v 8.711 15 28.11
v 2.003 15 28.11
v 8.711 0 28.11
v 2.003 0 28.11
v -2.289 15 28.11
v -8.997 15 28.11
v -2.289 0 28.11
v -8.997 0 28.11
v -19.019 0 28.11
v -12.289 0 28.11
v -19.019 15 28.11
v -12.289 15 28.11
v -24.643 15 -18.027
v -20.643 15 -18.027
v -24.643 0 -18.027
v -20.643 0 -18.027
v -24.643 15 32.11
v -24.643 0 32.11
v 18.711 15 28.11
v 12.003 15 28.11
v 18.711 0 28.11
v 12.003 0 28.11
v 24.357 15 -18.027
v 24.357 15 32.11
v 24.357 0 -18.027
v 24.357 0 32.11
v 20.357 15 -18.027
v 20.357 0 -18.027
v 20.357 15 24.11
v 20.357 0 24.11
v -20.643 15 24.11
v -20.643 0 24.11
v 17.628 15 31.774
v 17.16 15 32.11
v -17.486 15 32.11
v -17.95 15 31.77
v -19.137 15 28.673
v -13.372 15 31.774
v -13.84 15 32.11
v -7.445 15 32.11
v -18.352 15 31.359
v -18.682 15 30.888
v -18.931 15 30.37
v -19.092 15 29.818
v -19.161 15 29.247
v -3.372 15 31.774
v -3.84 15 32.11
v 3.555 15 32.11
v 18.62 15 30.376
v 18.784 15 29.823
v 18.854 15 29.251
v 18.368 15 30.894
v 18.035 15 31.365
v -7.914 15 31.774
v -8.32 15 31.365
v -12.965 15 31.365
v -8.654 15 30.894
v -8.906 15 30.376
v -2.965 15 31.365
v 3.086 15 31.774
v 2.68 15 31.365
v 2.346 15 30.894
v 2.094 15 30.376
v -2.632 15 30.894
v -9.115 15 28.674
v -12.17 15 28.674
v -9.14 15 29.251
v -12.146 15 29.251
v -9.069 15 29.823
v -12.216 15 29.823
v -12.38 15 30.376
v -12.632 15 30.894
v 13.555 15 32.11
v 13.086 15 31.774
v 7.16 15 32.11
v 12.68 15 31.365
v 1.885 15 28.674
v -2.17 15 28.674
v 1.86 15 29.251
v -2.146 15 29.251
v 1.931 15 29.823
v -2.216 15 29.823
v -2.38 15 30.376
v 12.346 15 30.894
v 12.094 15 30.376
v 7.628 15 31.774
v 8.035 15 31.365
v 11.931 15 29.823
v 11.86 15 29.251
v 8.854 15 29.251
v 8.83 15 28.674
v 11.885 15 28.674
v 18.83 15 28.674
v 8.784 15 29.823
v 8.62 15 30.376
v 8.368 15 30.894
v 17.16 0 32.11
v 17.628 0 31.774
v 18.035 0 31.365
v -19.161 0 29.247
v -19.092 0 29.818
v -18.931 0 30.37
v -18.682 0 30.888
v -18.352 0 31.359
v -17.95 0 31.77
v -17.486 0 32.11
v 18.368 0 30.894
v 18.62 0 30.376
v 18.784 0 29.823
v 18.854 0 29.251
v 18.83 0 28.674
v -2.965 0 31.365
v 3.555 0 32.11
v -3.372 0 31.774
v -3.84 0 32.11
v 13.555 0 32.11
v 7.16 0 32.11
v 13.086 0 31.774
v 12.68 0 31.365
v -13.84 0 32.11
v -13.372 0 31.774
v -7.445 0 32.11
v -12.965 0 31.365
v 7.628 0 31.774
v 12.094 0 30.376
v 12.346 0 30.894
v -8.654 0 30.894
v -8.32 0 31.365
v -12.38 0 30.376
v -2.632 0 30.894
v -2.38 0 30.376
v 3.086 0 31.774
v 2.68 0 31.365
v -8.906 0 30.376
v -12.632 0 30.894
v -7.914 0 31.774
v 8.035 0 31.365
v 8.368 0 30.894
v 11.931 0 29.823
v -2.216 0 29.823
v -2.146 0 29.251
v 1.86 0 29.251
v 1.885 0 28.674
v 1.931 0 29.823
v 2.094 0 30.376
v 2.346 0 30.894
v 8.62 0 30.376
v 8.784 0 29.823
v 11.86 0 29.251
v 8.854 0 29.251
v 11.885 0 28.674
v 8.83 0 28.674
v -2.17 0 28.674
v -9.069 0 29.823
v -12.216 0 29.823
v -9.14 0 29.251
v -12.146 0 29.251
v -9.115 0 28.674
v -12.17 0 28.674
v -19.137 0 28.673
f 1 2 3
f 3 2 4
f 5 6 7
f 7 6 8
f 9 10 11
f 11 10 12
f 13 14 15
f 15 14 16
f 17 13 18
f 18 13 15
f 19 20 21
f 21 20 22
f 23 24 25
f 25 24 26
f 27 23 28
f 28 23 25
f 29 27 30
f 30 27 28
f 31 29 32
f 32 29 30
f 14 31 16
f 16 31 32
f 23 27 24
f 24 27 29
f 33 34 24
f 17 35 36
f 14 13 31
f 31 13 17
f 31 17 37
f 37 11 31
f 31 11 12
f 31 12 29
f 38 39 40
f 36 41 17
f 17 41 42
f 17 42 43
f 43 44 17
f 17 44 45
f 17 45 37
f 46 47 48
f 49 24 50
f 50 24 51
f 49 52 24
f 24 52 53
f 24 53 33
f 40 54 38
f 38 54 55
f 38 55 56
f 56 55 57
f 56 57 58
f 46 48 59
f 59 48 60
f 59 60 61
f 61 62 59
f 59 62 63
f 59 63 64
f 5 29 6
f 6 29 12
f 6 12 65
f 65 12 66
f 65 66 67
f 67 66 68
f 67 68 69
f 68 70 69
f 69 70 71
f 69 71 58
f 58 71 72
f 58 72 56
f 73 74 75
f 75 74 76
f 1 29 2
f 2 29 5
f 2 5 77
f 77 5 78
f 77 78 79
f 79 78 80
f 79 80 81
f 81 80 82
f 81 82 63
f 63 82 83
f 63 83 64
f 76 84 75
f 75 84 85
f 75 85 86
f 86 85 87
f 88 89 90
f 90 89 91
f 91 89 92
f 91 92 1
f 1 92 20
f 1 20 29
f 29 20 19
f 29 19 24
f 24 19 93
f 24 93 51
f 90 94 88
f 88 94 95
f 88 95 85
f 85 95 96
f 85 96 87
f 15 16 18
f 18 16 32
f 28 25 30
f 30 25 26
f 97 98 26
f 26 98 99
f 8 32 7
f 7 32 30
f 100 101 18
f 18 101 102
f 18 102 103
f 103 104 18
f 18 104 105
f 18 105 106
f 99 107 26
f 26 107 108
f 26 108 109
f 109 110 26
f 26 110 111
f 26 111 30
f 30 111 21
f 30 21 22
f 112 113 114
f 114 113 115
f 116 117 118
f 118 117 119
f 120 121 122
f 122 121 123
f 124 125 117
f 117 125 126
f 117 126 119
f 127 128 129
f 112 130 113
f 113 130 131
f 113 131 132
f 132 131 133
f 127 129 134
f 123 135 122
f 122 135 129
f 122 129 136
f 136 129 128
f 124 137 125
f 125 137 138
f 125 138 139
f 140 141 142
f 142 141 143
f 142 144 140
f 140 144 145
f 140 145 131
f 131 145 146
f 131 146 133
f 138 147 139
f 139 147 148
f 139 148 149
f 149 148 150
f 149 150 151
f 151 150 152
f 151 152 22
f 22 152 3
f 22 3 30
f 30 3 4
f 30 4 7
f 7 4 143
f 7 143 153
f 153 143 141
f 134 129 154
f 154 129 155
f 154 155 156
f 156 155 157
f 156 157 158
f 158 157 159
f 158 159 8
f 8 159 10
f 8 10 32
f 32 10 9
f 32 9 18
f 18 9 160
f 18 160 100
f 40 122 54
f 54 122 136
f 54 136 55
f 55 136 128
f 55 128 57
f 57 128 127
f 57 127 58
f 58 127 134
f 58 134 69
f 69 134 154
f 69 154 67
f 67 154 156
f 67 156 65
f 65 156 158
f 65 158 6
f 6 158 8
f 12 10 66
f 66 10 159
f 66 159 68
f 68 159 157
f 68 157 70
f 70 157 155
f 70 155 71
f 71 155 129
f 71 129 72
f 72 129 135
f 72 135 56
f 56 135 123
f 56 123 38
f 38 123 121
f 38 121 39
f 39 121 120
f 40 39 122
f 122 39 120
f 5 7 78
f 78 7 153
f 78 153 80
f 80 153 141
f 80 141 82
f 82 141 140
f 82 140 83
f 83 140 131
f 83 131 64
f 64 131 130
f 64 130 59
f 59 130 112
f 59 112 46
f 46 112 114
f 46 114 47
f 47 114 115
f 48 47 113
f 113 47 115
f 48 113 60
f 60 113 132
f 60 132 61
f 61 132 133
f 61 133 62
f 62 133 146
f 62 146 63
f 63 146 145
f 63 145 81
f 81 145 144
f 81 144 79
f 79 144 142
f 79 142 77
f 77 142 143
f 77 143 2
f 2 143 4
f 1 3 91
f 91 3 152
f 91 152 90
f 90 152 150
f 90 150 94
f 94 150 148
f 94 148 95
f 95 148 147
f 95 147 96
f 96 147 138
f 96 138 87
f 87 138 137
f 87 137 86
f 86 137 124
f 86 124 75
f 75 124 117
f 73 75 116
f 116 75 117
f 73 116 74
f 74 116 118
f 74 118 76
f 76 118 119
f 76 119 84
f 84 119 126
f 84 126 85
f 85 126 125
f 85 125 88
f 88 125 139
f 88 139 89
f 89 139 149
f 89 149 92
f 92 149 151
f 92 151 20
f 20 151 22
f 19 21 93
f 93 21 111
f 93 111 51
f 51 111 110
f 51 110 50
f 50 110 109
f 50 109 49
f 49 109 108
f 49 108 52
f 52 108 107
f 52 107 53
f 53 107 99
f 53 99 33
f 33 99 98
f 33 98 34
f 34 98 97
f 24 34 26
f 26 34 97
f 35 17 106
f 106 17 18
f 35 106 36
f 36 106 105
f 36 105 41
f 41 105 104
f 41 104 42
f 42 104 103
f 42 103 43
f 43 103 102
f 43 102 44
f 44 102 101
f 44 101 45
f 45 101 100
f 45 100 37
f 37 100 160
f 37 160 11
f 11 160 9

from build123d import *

# Parameters (mm, degrees)
EXTRUDE_1_DEPTH = 15
EXTRUDE_4_DEPTH = 15


with BuildPart() as part:
    # 草图1 → 凸台-拉伸1 (new body)
    with BuildSketch(Plane(origin=(0, 0, 0), x_dir=(1, 0, 0), z_dir=(0, 1, 0))):
        Polygon((-20.642691415, 18.026682135), (-20.642691415, -24.110208817), (20.357308585, -24.110208817), (20.357308585, 18.026682135), (24.357308585, 18.026682135), (24.357308585, -28.110208817), (-24.642691415, -28.110208817), (-24.642691415, 18.026682135), align=None)
    extrude(amount=EXTRUDE_1_DEPTH)

    # 草图3 → 凸台-拉伸4 (add)
    with BuildSketch(Plane.XZ):
        with BuildLine():
            Line((-24.642691415, 28.110208817), (-24.642691415, 32.110208817))
            Line((-24.642691415, 32.110208817), (-17.486324867, 32.110208817))
            ThreePointArc((-17.486324867, 32.110208817), (-18.930816259, 30.370057744), (-19.018929604, 28.110208817))
            Line((-19.018929604, 28.110208817), (-24.642691415, 28.110208817))
        make_face()
        with BuildLine():
            Line((-13.839915778, 32.110208817), (-7.445467053, 32.110208817))
            ThreePointArc((-7.445467053, 32.110208817), (-8.905871866, 30.375773254), (-8.996793382, 28.110208817))
            Line((-8.996793382, 28.110208817), (-12.288589449, 28.110208817))
            ThreePointArc((-12.288589449, 28.110208817), (-12.379510964, 30.375773254), (-13.839915778, 32.110208817))
        make_face()
        with BuildLine():
            Line((-3.839915778, 32.110208817), (3.554532947, 32.110208817))
            ThreePointArc((3.554532947, 32.110208817), (2.094128134, 30.375773254), (2.003206618, 28.110208817))
            Line((2.003206618, 28.110208817), (-2.288589449, 28.110208817))
            ThreePointArc((-2.288589449, 28.110208817), (-2.379510964, 30.375773254), (-3.839915778, 32.110208817))
        make_face()
        with BuildLine():
            Line((7.160084222, 32.110208817), (13.554532947, 32.110208817))
            ThreePointArc((13.554532947, 32.110208817), (12.094128134, 30.375773254), (12.003206618, 28.110208817))
            Line((12.003206618, 28.110208817), (8.70892166, 28.101898452))
            ThreePointArc((8.70892166, 28.101898452), (8.622054937, 30.371728239), (7.160084222, 32.110208817))
        make_face()
        with BuildLine():
            Line((17.160084222, 32.110208817), (24.357308585, 32.110208817))
            Line((24.357308585, 32.110208817), (24.357308585, 28.110208817))
            Line((24.357308585, 28.110208817), (18.711410551, 28.110208817))
            ThreePointArc((18.711410551, 28.110208817), (18.620489036, 30.375773254), (17.160084222, 32.110208817))
        make_face()
    extrude(amount=-EXTRUDE_4_DEPTH)


solid = part.part
